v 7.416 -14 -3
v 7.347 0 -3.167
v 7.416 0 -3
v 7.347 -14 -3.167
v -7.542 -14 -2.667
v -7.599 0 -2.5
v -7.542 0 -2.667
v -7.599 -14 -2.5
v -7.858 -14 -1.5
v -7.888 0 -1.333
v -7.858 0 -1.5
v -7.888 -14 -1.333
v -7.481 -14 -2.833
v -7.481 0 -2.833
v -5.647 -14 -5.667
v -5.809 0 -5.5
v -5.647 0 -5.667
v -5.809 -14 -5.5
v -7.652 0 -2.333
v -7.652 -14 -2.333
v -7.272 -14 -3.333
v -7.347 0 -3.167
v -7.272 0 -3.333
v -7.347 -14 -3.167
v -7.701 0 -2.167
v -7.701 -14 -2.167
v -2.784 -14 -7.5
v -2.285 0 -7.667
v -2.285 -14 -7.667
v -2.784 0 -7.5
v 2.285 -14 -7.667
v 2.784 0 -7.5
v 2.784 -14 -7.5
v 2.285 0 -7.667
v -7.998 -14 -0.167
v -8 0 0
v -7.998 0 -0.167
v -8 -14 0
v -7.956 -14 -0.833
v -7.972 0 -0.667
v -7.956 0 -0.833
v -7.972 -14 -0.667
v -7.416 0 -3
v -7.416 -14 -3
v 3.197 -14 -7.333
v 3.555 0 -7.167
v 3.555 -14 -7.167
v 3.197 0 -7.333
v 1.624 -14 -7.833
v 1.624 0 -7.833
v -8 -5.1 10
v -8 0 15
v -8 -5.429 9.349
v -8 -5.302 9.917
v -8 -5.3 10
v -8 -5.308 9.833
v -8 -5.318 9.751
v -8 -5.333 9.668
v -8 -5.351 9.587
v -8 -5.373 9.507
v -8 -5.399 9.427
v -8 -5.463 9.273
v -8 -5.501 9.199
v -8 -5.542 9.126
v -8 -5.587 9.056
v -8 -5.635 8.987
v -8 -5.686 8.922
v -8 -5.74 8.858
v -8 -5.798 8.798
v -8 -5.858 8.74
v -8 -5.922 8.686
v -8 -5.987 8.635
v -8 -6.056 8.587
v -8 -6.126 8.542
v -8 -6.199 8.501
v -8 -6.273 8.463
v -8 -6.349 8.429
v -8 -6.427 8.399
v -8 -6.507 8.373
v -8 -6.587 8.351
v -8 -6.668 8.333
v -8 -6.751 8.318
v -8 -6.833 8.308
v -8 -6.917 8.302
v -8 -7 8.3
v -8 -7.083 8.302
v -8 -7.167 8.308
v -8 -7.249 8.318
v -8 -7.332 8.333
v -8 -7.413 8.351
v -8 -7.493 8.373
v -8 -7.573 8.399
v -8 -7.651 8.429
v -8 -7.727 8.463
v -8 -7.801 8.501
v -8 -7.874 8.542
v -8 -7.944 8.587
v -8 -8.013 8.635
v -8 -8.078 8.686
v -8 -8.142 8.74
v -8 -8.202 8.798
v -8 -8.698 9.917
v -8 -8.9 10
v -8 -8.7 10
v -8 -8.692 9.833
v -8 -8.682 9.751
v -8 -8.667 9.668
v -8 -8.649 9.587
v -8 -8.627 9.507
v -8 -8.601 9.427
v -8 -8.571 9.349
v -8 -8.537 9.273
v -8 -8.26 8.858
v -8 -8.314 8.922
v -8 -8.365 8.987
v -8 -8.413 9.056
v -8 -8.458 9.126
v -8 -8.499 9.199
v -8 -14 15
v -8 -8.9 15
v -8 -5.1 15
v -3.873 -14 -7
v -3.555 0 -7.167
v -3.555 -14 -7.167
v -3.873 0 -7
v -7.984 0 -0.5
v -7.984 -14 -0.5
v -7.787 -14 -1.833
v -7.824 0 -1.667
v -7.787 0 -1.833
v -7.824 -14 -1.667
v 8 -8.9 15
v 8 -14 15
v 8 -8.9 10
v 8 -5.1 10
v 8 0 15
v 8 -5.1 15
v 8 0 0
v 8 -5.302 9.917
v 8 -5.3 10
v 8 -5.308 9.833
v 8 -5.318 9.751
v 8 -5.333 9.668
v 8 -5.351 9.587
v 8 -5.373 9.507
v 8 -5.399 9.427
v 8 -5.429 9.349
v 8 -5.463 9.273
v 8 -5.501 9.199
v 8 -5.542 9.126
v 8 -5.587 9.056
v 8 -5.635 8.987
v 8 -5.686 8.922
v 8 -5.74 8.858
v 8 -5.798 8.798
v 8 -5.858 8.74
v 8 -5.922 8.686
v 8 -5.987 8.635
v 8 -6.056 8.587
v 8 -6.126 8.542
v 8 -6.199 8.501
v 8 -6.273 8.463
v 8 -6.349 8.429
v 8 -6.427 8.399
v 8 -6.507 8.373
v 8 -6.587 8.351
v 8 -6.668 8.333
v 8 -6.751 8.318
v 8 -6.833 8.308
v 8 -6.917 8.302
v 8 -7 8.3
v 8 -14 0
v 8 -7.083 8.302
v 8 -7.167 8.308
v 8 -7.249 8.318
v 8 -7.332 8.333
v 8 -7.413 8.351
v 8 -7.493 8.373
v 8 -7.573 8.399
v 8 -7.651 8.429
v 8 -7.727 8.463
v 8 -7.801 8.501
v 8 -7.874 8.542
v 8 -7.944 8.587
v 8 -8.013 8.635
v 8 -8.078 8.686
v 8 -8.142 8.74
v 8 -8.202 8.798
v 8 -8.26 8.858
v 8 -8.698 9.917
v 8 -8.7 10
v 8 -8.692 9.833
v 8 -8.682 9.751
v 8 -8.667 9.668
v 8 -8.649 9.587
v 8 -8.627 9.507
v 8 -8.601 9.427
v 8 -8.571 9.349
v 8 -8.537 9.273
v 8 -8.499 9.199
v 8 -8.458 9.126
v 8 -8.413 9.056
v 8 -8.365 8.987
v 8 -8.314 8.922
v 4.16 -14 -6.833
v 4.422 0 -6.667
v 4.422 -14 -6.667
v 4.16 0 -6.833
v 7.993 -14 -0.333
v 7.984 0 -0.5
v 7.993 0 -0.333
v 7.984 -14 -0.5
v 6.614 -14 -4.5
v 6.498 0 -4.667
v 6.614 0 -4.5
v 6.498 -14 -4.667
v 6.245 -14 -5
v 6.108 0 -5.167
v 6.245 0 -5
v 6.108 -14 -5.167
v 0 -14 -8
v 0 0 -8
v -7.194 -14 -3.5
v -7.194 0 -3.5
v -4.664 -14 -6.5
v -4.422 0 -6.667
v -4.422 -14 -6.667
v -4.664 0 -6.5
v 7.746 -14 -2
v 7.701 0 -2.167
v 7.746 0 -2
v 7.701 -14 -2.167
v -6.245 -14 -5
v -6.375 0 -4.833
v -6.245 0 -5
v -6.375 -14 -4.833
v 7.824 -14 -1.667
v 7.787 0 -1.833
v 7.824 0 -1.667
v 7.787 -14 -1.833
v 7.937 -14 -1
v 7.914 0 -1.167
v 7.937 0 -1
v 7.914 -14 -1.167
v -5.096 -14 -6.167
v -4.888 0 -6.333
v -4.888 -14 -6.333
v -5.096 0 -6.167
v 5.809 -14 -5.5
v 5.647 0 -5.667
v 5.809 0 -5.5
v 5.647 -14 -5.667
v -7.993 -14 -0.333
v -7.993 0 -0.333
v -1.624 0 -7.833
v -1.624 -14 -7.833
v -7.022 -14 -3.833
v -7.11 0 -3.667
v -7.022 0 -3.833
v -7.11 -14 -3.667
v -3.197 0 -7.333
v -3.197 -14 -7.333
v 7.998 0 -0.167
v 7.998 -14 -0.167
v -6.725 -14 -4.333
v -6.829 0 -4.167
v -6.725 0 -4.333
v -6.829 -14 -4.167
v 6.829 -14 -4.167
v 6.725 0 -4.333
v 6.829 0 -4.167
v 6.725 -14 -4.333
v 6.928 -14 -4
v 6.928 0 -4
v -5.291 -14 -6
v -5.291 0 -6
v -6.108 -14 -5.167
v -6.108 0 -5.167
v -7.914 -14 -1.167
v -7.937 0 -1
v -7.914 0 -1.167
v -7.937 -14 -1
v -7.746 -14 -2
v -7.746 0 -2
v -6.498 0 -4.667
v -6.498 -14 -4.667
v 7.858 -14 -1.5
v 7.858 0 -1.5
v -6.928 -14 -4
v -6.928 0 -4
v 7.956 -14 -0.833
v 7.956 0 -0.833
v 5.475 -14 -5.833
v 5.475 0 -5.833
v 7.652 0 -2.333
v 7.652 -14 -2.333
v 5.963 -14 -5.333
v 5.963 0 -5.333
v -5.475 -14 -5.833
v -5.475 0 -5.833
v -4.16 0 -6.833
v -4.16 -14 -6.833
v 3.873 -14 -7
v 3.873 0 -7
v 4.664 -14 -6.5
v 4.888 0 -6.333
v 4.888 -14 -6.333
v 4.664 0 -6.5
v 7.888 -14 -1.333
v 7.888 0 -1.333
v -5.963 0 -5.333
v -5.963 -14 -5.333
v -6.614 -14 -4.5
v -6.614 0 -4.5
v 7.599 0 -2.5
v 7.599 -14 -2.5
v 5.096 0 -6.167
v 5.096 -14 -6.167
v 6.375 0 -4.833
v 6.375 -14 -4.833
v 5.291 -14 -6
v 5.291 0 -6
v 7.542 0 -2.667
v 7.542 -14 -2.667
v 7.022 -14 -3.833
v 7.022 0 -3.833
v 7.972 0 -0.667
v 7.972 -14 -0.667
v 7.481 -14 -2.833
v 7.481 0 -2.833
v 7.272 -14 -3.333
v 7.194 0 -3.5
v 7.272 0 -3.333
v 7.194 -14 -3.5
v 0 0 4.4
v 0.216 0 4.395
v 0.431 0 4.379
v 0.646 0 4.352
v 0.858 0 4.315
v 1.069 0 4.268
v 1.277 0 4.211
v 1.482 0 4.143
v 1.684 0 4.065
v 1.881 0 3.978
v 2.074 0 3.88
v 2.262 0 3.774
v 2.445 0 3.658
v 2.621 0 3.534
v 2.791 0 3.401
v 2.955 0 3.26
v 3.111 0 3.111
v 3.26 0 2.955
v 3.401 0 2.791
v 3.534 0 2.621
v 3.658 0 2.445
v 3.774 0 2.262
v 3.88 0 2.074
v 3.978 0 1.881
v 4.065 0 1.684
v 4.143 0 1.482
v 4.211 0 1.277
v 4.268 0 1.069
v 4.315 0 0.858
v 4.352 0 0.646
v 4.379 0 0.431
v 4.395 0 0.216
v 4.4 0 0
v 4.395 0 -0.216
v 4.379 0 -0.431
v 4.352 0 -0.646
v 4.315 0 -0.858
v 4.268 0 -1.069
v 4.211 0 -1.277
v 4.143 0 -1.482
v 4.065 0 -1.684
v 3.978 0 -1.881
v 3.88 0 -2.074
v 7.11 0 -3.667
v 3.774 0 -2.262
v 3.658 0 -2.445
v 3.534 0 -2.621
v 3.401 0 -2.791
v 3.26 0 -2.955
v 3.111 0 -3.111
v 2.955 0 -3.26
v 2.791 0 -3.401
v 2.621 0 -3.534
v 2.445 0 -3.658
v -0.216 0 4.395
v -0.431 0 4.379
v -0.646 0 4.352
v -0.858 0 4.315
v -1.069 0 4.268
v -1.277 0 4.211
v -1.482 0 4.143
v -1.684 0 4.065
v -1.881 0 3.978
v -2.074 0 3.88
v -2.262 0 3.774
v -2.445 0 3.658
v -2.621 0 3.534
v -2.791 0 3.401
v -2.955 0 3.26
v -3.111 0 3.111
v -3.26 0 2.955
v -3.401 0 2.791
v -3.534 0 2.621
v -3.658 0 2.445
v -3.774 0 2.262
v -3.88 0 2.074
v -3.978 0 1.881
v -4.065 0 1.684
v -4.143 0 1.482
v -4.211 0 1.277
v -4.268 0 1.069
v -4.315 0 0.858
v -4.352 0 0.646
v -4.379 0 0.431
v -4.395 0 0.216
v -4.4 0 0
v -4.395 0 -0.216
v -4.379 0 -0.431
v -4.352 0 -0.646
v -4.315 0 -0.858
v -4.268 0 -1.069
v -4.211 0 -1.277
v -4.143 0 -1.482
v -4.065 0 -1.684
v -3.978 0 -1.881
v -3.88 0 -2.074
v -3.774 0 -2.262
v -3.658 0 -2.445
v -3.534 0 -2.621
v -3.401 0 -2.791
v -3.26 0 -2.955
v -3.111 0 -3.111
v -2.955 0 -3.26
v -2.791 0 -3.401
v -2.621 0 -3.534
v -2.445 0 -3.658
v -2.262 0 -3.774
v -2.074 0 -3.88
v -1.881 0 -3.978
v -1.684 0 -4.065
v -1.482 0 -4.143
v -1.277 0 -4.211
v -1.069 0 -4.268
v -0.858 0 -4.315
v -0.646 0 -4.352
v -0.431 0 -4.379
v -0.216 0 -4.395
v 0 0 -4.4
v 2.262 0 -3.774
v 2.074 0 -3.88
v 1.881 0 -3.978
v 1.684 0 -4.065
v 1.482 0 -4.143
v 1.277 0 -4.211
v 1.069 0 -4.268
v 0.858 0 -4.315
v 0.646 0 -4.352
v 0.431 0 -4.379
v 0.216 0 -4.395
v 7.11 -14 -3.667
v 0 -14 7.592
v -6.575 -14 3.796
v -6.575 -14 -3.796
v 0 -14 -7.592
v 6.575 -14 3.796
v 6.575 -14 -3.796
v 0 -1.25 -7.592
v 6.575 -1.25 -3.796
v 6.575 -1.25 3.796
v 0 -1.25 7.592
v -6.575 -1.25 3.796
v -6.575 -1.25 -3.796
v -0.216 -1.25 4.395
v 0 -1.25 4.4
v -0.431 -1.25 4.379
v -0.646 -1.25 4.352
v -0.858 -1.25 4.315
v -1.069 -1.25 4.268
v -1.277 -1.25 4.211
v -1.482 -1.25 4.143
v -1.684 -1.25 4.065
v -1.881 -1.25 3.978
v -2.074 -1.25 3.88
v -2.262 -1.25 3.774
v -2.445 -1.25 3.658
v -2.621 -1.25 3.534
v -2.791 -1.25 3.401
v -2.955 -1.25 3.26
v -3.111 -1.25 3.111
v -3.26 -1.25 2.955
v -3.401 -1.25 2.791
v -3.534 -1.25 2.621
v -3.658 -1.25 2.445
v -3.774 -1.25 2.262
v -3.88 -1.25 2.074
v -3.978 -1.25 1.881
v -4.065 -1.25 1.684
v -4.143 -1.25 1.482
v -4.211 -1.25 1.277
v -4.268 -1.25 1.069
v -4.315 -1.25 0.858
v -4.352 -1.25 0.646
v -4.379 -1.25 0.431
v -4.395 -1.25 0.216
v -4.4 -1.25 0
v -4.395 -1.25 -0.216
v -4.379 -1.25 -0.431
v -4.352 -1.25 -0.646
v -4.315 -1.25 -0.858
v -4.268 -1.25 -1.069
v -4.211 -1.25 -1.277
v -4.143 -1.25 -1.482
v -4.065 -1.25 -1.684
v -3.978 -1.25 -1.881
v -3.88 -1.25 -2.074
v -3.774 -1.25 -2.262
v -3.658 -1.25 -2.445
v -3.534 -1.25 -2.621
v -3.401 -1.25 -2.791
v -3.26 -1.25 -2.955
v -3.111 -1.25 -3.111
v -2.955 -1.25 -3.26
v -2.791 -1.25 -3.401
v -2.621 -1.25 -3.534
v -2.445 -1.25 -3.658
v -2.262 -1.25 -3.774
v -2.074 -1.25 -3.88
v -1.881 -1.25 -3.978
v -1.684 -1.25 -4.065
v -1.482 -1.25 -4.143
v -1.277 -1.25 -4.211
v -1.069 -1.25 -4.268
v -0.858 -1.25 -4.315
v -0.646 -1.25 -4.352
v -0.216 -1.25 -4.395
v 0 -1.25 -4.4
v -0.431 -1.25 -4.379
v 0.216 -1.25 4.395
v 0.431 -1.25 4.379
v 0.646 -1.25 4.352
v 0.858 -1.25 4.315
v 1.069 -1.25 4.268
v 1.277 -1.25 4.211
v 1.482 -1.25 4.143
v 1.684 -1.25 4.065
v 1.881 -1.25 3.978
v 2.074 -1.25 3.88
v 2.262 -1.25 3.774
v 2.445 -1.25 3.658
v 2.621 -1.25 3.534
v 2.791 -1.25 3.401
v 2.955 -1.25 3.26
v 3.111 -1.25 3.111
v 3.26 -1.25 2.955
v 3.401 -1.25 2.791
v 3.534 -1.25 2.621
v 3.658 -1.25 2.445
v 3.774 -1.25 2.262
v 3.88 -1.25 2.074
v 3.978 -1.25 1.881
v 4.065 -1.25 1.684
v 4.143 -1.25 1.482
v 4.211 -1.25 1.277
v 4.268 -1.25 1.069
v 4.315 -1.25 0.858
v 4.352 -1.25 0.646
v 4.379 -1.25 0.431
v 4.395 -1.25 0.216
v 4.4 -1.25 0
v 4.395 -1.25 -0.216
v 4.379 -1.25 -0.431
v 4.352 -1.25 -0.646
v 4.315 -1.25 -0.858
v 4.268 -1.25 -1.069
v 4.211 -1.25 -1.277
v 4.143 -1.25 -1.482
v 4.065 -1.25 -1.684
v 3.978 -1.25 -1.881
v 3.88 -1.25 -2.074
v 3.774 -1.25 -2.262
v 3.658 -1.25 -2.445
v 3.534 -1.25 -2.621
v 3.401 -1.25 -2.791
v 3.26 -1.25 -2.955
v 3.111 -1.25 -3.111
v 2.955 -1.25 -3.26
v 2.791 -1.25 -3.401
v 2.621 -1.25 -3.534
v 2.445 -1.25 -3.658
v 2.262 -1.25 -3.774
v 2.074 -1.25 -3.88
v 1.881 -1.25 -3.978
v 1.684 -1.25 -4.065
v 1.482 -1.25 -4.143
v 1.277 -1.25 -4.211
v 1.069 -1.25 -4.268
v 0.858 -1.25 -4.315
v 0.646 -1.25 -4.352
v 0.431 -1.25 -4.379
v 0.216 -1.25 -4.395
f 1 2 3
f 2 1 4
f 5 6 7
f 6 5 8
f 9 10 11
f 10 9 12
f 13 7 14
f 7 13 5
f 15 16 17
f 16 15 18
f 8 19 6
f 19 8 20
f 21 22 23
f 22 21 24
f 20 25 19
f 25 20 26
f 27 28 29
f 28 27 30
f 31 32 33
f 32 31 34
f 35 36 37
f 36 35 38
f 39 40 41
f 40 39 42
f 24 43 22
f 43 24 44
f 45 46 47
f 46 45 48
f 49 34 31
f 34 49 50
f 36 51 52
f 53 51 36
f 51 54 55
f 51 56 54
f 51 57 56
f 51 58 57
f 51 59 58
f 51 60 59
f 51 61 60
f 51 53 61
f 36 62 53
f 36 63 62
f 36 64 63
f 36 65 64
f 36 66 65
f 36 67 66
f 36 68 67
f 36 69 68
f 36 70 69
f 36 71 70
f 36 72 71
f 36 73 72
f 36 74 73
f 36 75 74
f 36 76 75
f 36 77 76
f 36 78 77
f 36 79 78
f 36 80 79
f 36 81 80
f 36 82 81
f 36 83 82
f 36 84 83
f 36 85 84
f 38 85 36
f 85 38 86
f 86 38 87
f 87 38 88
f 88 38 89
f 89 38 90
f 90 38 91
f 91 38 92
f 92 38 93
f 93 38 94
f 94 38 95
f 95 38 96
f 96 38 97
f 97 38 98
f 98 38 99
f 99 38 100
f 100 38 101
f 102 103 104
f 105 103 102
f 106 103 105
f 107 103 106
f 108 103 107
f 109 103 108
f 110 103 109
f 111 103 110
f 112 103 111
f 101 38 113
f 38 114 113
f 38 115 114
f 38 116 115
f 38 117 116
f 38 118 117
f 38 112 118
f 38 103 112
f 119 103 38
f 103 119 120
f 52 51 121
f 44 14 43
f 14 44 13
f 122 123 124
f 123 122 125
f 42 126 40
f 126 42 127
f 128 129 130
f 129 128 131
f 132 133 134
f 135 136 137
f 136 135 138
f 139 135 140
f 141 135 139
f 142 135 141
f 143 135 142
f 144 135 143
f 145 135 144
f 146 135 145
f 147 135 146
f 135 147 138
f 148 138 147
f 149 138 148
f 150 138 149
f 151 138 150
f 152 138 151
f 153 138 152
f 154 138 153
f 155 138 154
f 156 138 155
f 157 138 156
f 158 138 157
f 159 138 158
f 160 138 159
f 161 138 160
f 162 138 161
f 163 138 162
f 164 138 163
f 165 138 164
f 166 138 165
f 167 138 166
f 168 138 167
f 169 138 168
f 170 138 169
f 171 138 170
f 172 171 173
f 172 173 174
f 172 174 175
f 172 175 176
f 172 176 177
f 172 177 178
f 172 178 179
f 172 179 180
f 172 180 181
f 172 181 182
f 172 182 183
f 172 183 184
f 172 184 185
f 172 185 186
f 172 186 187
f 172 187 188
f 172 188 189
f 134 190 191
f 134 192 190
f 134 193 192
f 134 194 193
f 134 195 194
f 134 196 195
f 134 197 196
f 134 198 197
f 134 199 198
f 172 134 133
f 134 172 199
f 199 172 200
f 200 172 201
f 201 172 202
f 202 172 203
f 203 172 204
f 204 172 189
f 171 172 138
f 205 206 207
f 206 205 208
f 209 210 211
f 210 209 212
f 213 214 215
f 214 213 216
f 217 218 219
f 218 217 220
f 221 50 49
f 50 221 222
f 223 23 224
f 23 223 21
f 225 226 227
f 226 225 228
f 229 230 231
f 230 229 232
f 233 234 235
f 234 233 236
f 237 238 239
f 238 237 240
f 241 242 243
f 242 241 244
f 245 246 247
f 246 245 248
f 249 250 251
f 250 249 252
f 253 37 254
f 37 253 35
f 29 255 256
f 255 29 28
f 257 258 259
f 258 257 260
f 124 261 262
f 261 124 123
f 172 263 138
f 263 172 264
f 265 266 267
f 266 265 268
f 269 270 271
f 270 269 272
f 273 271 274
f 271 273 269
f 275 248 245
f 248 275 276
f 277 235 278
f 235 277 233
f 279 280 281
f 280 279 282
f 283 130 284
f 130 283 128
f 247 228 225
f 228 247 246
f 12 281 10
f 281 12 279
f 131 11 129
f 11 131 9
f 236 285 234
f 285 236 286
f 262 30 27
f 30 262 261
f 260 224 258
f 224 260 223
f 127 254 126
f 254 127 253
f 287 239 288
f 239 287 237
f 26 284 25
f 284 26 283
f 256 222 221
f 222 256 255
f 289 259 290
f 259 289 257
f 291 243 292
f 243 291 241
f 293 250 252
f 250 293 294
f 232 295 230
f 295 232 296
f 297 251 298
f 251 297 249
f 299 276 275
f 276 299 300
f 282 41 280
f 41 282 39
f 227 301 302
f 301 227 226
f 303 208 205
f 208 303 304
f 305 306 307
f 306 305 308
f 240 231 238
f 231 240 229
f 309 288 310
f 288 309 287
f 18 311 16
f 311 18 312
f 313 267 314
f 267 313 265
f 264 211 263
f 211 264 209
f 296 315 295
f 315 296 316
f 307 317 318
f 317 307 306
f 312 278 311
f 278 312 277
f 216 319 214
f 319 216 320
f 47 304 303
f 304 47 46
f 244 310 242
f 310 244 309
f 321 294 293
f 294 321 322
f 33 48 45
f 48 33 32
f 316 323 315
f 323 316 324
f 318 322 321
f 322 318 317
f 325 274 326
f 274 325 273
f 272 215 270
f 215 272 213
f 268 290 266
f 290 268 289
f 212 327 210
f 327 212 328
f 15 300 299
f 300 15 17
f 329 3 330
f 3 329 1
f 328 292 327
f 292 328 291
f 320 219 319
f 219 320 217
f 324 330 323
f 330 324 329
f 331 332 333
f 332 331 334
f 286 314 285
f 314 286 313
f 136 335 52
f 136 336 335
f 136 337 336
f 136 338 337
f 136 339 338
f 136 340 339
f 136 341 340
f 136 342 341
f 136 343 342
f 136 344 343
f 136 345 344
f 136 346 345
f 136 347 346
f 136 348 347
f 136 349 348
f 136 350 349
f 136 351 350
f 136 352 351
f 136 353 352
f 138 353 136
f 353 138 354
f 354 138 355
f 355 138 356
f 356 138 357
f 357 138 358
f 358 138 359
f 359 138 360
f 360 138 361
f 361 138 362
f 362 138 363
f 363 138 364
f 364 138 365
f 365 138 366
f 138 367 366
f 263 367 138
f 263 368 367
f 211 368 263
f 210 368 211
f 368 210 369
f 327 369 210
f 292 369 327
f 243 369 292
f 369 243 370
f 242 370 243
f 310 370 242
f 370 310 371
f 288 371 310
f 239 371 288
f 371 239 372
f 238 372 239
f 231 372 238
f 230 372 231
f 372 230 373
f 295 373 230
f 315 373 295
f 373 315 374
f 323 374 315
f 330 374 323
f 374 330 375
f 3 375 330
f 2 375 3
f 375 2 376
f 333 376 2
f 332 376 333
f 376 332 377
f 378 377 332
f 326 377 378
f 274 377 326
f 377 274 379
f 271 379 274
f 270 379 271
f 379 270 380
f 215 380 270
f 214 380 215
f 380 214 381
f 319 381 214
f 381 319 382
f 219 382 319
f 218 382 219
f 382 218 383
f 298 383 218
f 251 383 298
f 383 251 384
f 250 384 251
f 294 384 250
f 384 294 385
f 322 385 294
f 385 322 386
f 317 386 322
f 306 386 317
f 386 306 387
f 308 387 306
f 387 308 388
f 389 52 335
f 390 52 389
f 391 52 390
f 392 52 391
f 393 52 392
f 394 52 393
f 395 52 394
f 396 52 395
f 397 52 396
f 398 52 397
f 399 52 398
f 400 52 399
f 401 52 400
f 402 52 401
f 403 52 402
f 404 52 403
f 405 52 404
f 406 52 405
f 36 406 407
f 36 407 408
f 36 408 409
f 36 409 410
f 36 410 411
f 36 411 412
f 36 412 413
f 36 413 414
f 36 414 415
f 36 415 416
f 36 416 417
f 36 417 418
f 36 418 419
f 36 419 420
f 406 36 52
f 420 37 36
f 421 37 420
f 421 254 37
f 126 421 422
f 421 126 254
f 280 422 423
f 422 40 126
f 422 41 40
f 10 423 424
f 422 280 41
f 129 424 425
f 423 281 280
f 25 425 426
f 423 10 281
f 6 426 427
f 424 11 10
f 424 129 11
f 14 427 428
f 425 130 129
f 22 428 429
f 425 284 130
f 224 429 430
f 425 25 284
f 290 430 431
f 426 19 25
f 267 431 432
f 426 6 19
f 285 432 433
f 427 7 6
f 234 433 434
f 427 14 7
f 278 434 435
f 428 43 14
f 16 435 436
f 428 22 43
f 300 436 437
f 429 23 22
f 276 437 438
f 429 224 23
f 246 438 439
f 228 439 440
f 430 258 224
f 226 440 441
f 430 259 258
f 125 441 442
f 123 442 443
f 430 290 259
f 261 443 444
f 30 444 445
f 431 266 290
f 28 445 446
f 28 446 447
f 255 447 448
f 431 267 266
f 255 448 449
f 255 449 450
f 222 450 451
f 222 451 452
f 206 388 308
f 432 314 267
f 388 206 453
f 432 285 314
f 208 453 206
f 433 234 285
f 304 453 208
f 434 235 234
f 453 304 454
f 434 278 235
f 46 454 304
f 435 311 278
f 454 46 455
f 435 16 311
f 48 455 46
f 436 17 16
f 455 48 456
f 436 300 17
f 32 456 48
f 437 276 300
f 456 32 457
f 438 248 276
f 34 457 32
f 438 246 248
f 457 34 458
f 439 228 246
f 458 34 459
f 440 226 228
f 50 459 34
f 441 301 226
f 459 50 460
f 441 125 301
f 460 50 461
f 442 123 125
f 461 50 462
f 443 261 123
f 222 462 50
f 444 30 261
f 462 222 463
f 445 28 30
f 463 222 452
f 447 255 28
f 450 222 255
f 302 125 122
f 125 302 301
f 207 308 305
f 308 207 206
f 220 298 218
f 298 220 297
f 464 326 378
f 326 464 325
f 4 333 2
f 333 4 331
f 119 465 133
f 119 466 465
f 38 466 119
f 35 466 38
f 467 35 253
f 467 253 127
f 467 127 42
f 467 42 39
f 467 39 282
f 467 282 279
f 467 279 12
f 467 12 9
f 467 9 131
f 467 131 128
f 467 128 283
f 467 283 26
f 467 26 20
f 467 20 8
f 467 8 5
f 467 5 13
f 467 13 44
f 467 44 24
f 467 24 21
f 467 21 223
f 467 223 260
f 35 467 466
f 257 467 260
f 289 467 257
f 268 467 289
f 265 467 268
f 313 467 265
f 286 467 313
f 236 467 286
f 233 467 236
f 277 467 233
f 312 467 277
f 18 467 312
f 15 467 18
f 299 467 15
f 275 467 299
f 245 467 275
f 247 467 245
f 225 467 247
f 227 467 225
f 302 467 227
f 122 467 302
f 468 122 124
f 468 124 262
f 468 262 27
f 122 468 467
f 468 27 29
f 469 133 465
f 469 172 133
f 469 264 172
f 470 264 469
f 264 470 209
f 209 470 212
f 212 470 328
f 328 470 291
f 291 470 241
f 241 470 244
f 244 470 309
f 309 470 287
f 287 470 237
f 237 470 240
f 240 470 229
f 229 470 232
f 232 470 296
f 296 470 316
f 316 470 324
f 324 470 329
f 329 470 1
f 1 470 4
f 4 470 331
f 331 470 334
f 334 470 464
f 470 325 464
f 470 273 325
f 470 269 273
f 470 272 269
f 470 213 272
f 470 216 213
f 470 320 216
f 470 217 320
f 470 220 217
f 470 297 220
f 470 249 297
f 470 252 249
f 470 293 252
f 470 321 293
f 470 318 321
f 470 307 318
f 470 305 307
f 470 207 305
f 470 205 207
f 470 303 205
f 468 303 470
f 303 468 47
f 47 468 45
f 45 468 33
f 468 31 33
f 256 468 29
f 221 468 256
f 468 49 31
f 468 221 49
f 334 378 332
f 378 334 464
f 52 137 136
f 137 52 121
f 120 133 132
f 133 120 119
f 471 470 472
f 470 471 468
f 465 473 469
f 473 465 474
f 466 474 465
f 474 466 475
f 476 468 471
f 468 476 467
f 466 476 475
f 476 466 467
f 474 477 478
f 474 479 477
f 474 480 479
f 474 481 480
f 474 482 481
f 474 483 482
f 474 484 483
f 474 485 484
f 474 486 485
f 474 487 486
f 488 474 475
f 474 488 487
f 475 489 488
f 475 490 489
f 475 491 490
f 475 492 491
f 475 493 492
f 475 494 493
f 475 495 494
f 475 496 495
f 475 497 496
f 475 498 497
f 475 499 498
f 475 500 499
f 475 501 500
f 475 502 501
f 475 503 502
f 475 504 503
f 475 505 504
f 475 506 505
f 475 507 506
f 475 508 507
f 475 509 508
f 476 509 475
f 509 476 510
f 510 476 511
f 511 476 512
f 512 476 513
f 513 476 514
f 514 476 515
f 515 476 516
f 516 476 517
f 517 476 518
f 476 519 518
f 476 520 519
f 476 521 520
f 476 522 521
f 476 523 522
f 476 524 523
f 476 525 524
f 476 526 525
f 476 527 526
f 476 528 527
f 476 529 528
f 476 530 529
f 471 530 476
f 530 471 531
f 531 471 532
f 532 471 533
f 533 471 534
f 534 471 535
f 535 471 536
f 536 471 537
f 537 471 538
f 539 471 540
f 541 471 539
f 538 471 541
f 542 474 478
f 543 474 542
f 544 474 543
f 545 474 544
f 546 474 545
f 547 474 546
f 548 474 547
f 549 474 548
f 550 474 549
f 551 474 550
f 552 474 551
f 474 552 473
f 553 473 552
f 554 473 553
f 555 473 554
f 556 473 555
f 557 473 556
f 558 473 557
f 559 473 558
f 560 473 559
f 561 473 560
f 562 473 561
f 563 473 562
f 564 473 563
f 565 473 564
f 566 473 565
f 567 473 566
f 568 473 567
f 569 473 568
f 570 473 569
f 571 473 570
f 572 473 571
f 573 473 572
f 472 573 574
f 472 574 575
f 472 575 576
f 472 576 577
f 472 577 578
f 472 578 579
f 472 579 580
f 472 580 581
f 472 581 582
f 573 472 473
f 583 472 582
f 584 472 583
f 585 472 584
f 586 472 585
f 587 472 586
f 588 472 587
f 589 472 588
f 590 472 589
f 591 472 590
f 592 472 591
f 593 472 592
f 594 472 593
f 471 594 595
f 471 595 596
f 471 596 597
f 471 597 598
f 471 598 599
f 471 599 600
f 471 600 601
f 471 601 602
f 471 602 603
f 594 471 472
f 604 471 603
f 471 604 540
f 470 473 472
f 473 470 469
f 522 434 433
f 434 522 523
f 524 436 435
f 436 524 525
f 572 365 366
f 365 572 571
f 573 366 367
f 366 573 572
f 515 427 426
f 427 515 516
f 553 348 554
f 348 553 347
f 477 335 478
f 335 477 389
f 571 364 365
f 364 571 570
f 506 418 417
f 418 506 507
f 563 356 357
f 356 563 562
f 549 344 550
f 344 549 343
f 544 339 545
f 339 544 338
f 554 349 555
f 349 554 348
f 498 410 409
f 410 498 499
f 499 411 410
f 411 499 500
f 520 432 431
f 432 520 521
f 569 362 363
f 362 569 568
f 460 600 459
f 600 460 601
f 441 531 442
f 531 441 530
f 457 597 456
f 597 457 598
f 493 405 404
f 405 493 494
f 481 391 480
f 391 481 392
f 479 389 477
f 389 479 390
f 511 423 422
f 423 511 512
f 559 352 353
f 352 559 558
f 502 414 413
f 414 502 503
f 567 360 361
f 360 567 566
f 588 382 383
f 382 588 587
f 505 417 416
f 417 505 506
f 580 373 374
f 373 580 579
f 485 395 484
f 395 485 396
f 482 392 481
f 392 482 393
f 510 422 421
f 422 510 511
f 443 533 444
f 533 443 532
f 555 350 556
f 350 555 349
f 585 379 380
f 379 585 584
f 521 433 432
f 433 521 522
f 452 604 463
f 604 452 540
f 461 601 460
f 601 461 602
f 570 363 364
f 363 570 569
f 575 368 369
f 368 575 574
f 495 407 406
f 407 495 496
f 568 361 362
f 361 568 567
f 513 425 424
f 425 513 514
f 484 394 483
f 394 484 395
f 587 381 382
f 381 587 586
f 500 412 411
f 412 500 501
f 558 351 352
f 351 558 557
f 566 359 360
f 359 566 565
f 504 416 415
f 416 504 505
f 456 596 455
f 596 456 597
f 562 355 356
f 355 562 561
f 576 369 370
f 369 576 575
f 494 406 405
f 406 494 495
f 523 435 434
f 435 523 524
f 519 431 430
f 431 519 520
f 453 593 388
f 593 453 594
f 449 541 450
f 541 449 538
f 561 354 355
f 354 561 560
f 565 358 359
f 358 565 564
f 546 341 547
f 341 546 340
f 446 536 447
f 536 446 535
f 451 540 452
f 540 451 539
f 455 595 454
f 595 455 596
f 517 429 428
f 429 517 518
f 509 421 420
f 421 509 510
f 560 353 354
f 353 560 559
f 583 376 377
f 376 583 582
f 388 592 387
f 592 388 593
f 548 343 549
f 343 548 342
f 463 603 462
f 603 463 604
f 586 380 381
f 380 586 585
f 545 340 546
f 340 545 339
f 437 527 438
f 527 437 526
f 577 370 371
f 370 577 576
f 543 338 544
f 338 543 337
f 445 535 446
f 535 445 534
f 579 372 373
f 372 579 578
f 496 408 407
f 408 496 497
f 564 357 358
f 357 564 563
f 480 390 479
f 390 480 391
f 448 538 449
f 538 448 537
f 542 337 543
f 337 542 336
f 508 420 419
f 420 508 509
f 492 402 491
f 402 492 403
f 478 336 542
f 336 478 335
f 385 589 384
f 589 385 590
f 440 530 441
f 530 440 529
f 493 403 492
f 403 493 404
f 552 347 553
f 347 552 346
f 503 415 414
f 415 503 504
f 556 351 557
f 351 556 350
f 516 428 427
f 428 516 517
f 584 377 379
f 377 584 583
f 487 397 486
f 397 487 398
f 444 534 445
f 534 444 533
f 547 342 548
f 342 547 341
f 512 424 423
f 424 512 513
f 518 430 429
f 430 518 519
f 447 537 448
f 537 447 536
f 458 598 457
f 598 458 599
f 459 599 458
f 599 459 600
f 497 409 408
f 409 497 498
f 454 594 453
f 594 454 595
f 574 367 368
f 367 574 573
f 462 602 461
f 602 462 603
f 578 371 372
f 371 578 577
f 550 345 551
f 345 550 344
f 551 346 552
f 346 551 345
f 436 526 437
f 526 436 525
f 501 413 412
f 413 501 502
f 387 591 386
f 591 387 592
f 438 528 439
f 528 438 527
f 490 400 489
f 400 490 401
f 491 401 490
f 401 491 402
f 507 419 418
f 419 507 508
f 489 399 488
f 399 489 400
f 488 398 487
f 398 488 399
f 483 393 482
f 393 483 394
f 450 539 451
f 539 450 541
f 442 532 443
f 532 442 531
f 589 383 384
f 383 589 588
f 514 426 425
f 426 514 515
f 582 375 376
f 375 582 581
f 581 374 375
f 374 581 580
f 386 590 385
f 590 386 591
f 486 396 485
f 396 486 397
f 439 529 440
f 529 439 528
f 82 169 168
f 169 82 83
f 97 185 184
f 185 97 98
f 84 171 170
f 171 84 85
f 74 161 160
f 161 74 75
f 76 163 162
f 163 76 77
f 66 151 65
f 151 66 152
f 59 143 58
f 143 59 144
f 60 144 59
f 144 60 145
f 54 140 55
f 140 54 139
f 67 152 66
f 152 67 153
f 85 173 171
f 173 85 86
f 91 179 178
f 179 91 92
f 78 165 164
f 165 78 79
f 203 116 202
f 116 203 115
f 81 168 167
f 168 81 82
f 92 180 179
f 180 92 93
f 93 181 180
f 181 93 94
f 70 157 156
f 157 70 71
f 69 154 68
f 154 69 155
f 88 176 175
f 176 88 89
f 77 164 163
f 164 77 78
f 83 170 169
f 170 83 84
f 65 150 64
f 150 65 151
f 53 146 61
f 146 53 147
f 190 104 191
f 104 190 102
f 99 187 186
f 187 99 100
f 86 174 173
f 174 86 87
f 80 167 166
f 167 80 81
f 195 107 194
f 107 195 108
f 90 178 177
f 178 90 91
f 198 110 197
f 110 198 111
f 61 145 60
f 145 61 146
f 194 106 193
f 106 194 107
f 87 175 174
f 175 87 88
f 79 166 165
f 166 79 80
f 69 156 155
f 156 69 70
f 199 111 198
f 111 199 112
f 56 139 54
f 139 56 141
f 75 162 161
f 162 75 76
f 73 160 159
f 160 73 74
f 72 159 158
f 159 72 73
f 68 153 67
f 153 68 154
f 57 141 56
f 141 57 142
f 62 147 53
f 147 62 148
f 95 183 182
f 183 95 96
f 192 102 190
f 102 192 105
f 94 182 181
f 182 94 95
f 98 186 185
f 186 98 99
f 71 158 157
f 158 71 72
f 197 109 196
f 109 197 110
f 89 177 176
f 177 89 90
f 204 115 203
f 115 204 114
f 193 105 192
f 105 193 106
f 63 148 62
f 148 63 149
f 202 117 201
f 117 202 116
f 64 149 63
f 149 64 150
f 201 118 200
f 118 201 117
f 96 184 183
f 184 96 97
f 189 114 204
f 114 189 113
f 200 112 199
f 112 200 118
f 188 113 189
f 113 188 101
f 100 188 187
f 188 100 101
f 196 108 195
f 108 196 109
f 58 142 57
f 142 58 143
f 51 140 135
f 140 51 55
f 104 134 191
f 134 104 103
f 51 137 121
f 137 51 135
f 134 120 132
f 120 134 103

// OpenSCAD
$fn=128;

// V110 removable lead-nut carrier for TWO standard M8 nuts.
// External envelope and retaining-pin geometry reproduce the proven V60
// top-loaded cartridge so the existing BASE does not need to be reprinted.
//
// Measured nut: 12.79 mm AF x 6.20 mm high.
// Two nuts: 12.40 mm stack.
// Common pocket: 12.75 mm axial length -> 0.35 mm total phase/alignment freedom.
// The pocket is deliberately OPEN at the rear (Y=-14): after installation the
// existing BASE pocket closes that end and takes the high clamp thrust directly.
// A 1.25 mm printed front lip only retains the stack during clamp opening.

carrier_len = 14.00;
profile_r = 8.00;
body_z1 = 7.00;
cap_z0 = 10.80;
cap_z1 = 15.00;

nut_af = 13.15;
nut_pocket_len = 12.75;
front_lip = carrier_len - nut_pocket_len;
screw_clear_d = 8.80;

pin_y = -7.00;
pin_z = 10.00;
pin_hole_d = 3.40;
pin_drop_w = 3.80;

function semicircle_right(n=48) = [
    for(i=[0:n])
        let(z=-profile_r + profile_r*i/n,
            x=sqrt(max(0,profile_r*profile_r-z*z)))
        [x,z]
];

// OpenSCAD 2021.01 has no reverse() function. Generate the left side in
// descending index order instead. Skip i=0 because polygon closure returns to
// the one mathematical bottom point from semicircle_right().
function semicircle_left(n=48) = [
    for(i=[n:-1:1])
        let(z=-profile_r + profile_r*i/n,
            x=sqrt(max(0,profile_r*profile_r-z*z)))
        [-x,z]
];

function carrier_profile() = concat(
    semicircle_right(),
    [[profile_r,body_z1],[-profile_r,body_z1]],
    semicircle_left()
);

module prism_xz_neg_y(points,len,y_front=0) {
    translate([0,y_front,0])
        rotate([90,0,0])
            linear_extrude(height=len,convexity=10)
                polygon(points=points);
}

module hex_xz_neg_y(af,len,y_front) {
    h = af/sqrt(3);
    pts = [
        [ af/2, h/2], [0,h], [-af/2,h/2],
        [-af/2,-h/2], [0,-h], [af/2,-h/2]
    ];
    prism_xz_neg_y(pts,len,y_front);
}

module cyl_x(len,d,x0) {
    translate([x0,0,0]) rotate([0,90,0]) cylinder(h=len,d=d);
}

module carrier_outer() {
    union() {
        prism_xz_neg_y(carrier_profile(),carrier_len,0);
        translate([-6,-11,5]) cube([12,8,6]);
        translate([-8,-carrier_len,body_z1-0.10])
            cube([16,carrier_len,cap_z0-body_z1+0.20]);
        translate([-8,-carrier_len,cap_z0])
            cube([16,carrier_len,cap_z1-cap_z0]);
    }
}

difference() {
    carrier_outer();

    // Open rear end: the first steel nut bears directly against the existing
    // base pocket under high closing load instead of loading a thin printed wall.
    hex_xz_neg_y(nut_af,nut_pocket_len+0.10,-front_lip);

    // M8 running clearance through the front retaining lip.
    translate([0,0.20,0]) rotate([90,0,0])
        cylinder(h=carrier_len+0.40,d=screw_clear_d);

    // Existing V60 top-installed retaining-pin cradle and service throat.
    translate([0,pin_y,pin_z]) cyl_x(20,pin_hole_d,-10);
    translate([-10,pin_y-pin_drop_w/2,pin_z])
        cube([20,pin_drop_w,cap_z1-pin_z+0.50]);
}
